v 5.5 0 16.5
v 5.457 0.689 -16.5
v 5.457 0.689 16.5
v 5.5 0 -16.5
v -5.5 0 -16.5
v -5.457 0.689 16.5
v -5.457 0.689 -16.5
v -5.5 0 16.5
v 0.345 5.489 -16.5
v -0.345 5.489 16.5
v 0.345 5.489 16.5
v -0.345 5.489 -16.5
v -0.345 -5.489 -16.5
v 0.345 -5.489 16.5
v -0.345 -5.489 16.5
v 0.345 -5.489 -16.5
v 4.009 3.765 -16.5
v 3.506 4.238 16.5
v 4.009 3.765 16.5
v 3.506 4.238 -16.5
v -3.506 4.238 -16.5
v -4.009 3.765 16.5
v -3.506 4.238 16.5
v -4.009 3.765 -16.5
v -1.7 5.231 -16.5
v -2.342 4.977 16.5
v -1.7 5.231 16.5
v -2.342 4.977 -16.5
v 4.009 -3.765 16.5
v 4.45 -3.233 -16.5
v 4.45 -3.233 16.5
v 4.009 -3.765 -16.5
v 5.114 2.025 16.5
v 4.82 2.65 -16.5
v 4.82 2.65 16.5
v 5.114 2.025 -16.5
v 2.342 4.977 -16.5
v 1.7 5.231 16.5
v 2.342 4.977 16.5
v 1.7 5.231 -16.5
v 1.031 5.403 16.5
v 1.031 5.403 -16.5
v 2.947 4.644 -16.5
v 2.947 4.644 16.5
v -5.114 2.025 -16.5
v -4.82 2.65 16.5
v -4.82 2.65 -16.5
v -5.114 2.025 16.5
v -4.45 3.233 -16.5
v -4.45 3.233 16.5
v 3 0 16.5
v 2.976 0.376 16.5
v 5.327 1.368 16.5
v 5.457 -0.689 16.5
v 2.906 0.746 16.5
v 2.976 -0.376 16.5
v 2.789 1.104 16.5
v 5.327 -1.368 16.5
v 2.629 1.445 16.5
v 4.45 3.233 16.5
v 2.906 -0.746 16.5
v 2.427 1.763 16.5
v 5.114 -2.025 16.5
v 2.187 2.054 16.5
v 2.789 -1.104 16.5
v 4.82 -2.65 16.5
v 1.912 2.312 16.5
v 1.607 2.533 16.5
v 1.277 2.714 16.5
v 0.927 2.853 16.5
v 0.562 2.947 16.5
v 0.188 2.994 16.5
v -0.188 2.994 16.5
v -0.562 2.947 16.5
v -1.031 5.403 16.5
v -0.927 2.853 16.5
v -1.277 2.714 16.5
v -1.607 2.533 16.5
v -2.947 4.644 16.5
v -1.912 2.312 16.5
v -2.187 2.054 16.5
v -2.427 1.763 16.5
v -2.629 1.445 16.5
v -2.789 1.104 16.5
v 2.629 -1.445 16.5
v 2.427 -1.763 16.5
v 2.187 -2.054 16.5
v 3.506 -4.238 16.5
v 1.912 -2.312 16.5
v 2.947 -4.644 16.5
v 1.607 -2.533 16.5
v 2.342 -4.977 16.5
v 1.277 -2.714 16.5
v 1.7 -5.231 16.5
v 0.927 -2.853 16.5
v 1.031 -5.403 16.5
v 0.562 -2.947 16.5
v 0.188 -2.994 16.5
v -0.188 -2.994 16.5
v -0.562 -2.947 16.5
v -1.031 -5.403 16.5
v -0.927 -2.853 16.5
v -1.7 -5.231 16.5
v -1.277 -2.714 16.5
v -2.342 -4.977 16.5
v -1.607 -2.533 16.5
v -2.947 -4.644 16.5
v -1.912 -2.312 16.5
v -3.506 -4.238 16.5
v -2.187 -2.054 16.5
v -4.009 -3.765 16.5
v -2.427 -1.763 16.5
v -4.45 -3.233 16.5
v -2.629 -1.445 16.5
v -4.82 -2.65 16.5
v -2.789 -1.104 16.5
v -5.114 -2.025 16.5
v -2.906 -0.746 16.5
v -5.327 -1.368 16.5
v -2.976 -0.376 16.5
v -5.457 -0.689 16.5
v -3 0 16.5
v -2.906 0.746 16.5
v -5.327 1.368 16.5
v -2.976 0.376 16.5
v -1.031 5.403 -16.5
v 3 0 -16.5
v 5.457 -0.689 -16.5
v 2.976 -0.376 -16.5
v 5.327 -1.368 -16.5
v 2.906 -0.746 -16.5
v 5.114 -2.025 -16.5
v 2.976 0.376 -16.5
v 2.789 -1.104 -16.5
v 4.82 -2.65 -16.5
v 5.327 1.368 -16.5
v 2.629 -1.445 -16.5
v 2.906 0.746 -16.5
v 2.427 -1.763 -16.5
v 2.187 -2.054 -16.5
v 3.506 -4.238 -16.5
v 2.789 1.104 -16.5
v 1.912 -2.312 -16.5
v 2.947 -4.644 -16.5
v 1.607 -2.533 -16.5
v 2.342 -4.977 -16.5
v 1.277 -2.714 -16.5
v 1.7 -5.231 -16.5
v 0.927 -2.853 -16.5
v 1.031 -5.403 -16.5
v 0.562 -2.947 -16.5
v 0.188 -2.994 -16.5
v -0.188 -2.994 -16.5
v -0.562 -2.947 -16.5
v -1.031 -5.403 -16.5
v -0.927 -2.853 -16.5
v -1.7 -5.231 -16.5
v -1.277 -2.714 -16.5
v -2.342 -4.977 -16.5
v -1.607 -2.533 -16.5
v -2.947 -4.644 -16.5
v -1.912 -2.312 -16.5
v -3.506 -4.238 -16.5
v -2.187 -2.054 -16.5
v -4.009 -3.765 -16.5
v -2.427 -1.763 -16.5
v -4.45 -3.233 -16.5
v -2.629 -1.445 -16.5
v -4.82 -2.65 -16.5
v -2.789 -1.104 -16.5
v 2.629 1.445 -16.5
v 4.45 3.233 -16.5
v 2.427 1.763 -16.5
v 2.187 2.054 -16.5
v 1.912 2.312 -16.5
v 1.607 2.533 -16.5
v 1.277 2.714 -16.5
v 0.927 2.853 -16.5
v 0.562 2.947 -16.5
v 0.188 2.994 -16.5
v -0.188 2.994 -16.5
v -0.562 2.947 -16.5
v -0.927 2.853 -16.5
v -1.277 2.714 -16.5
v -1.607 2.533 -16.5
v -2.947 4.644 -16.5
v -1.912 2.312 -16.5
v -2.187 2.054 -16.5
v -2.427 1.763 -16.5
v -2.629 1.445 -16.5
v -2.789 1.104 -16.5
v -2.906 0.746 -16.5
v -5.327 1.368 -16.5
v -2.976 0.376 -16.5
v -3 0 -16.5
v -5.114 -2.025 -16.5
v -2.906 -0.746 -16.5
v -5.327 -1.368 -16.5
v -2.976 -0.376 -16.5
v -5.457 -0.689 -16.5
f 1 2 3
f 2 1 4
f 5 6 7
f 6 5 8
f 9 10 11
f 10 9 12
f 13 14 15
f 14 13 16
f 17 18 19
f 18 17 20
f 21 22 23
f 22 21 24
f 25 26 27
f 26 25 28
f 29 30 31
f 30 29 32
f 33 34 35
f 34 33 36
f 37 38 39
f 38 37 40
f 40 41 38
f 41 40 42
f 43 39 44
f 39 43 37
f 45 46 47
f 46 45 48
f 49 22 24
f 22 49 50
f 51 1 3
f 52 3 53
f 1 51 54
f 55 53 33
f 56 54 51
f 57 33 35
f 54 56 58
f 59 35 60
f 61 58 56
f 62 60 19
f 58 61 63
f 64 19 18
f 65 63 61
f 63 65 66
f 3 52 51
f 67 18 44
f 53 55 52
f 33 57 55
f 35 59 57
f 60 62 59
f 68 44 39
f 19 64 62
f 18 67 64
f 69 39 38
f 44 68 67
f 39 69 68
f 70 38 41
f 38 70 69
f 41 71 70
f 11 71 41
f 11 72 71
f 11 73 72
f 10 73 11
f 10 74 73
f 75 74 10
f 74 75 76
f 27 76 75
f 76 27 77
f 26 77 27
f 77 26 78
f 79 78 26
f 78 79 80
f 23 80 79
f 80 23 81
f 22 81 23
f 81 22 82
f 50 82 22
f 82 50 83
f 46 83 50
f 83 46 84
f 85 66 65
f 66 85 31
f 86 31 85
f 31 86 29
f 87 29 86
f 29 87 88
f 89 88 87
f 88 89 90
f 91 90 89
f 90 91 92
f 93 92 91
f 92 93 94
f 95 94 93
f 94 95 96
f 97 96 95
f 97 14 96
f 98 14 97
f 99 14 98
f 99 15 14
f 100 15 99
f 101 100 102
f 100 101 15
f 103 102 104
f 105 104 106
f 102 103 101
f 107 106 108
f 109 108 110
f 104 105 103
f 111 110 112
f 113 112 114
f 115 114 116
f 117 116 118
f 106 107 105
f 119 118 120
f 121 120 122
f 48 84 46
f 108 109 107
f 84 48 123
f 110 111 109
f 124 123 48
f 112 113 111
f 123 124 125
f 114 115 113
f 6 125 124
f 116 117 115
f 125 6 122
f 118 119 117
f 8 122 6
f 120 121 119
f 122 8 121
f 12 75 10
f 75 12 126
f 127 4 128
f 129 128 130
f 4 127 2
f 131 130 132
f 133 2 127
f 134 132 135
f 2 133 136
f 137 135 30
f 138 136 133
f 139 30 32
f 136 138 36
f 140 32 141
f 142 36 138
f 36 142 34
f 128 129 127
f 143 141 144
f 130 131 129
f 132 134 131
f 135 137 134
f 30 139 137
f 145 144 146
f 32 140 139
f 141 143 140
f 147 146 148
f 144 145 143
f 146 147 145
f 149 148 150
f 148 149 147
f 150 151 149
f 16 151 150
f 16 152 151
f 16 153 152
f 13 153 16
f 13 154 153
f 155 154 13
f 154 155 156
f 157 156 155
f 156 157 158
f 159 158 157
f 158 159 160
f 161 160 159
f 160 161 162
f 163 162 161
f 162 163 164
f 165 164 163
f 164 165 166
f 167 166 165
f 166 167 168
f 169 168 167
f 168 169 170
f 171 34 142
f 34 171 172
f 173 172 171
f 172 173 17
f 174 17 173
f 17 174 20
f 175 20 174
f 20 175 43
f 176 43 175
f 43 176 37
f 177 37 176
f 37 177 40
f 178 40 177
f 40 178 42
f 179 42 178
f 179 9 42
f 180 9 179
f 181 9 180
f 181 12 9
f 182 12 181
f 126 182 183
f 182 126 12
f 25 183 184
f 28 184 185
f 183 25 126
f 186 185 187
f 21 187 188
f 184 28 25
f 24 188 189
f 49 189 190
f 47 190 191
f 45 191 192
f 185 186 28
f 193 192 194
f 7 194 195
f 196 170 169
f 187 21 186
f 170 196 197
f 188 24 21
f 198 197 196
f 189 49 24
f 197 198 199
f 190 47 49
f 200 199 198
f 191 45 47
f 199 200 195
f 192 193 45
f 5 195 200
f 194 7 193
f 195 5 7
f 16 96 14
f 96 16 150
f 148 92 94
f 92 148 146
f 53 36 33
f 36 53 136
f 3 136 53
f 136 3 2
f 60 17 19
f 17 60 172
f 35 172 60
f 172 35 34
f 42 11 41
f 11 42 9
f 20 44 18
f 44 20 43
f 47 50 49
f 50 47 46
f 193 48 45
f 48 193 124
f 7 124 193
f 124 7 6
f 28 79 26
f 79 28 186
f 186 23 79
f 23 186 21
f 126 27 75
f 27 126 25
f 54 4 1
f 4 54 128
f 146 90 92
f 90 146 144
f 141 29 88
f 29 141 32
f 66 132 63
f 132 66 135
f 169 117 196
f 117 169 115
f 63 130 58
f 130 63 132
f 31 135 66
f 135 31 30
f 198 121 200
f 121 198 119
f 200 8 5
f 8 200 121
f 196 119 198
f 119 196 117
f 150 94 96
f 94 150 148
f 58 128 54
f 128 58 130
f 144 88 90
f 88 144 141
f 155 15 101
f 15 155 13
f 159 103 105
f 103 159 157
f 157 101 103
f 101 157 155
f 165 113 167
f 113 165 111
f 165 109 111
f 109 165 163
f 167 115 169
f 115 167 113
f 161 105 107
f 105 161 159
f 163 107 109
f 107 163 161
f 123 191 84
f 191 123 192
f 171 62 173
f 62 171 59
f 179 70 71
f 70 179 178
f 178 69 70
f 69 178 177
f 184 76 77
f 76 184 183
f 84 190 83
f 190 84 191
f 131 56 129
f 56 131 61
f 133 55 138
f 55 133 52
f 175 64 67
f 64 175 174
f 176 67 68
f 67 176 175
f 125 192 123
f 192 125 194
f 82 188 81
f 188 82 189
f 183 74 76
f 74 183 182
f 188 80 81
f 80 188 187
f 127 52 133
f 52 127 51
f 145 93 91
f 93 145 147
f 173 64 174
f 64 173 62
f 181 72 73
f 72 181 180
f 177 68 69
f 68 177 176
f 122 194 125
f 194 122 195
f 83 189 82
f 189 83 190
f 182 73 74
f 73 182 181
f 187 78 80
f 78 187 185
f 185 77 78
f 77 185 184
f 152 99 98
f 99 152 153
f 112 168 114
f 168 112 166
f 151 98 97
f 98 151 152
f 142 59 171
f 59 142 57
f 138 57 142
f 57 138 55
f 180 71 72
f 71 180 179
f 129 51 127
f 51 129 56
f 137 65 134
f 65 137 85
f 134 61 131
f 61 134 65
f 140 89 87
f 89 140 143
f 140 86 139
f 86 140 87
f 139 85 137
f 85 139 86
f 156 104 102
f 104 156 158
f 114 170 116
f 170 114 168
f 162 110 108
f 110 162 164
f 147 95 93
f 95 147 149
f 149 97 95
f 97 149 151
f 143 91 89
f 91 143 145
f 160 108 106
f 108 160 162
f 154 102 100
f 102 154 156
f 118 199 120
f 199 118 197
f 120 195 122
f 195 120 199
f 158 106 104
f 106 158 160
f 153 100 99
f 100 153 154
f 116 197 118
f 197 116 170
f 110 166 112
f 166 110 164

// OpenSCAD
$fn = 50;


difference() {
	union() {
		translate(v = [0, 0, -16.5000000000]) {
			cylinder(h = 33, r = 5.5000000000);
		}
	}
	union() {
		translate(v = [0, 0, -100.0000000000]) {
			cylinder(h = 200, r = 3.0000000000);
		}
	}
}
